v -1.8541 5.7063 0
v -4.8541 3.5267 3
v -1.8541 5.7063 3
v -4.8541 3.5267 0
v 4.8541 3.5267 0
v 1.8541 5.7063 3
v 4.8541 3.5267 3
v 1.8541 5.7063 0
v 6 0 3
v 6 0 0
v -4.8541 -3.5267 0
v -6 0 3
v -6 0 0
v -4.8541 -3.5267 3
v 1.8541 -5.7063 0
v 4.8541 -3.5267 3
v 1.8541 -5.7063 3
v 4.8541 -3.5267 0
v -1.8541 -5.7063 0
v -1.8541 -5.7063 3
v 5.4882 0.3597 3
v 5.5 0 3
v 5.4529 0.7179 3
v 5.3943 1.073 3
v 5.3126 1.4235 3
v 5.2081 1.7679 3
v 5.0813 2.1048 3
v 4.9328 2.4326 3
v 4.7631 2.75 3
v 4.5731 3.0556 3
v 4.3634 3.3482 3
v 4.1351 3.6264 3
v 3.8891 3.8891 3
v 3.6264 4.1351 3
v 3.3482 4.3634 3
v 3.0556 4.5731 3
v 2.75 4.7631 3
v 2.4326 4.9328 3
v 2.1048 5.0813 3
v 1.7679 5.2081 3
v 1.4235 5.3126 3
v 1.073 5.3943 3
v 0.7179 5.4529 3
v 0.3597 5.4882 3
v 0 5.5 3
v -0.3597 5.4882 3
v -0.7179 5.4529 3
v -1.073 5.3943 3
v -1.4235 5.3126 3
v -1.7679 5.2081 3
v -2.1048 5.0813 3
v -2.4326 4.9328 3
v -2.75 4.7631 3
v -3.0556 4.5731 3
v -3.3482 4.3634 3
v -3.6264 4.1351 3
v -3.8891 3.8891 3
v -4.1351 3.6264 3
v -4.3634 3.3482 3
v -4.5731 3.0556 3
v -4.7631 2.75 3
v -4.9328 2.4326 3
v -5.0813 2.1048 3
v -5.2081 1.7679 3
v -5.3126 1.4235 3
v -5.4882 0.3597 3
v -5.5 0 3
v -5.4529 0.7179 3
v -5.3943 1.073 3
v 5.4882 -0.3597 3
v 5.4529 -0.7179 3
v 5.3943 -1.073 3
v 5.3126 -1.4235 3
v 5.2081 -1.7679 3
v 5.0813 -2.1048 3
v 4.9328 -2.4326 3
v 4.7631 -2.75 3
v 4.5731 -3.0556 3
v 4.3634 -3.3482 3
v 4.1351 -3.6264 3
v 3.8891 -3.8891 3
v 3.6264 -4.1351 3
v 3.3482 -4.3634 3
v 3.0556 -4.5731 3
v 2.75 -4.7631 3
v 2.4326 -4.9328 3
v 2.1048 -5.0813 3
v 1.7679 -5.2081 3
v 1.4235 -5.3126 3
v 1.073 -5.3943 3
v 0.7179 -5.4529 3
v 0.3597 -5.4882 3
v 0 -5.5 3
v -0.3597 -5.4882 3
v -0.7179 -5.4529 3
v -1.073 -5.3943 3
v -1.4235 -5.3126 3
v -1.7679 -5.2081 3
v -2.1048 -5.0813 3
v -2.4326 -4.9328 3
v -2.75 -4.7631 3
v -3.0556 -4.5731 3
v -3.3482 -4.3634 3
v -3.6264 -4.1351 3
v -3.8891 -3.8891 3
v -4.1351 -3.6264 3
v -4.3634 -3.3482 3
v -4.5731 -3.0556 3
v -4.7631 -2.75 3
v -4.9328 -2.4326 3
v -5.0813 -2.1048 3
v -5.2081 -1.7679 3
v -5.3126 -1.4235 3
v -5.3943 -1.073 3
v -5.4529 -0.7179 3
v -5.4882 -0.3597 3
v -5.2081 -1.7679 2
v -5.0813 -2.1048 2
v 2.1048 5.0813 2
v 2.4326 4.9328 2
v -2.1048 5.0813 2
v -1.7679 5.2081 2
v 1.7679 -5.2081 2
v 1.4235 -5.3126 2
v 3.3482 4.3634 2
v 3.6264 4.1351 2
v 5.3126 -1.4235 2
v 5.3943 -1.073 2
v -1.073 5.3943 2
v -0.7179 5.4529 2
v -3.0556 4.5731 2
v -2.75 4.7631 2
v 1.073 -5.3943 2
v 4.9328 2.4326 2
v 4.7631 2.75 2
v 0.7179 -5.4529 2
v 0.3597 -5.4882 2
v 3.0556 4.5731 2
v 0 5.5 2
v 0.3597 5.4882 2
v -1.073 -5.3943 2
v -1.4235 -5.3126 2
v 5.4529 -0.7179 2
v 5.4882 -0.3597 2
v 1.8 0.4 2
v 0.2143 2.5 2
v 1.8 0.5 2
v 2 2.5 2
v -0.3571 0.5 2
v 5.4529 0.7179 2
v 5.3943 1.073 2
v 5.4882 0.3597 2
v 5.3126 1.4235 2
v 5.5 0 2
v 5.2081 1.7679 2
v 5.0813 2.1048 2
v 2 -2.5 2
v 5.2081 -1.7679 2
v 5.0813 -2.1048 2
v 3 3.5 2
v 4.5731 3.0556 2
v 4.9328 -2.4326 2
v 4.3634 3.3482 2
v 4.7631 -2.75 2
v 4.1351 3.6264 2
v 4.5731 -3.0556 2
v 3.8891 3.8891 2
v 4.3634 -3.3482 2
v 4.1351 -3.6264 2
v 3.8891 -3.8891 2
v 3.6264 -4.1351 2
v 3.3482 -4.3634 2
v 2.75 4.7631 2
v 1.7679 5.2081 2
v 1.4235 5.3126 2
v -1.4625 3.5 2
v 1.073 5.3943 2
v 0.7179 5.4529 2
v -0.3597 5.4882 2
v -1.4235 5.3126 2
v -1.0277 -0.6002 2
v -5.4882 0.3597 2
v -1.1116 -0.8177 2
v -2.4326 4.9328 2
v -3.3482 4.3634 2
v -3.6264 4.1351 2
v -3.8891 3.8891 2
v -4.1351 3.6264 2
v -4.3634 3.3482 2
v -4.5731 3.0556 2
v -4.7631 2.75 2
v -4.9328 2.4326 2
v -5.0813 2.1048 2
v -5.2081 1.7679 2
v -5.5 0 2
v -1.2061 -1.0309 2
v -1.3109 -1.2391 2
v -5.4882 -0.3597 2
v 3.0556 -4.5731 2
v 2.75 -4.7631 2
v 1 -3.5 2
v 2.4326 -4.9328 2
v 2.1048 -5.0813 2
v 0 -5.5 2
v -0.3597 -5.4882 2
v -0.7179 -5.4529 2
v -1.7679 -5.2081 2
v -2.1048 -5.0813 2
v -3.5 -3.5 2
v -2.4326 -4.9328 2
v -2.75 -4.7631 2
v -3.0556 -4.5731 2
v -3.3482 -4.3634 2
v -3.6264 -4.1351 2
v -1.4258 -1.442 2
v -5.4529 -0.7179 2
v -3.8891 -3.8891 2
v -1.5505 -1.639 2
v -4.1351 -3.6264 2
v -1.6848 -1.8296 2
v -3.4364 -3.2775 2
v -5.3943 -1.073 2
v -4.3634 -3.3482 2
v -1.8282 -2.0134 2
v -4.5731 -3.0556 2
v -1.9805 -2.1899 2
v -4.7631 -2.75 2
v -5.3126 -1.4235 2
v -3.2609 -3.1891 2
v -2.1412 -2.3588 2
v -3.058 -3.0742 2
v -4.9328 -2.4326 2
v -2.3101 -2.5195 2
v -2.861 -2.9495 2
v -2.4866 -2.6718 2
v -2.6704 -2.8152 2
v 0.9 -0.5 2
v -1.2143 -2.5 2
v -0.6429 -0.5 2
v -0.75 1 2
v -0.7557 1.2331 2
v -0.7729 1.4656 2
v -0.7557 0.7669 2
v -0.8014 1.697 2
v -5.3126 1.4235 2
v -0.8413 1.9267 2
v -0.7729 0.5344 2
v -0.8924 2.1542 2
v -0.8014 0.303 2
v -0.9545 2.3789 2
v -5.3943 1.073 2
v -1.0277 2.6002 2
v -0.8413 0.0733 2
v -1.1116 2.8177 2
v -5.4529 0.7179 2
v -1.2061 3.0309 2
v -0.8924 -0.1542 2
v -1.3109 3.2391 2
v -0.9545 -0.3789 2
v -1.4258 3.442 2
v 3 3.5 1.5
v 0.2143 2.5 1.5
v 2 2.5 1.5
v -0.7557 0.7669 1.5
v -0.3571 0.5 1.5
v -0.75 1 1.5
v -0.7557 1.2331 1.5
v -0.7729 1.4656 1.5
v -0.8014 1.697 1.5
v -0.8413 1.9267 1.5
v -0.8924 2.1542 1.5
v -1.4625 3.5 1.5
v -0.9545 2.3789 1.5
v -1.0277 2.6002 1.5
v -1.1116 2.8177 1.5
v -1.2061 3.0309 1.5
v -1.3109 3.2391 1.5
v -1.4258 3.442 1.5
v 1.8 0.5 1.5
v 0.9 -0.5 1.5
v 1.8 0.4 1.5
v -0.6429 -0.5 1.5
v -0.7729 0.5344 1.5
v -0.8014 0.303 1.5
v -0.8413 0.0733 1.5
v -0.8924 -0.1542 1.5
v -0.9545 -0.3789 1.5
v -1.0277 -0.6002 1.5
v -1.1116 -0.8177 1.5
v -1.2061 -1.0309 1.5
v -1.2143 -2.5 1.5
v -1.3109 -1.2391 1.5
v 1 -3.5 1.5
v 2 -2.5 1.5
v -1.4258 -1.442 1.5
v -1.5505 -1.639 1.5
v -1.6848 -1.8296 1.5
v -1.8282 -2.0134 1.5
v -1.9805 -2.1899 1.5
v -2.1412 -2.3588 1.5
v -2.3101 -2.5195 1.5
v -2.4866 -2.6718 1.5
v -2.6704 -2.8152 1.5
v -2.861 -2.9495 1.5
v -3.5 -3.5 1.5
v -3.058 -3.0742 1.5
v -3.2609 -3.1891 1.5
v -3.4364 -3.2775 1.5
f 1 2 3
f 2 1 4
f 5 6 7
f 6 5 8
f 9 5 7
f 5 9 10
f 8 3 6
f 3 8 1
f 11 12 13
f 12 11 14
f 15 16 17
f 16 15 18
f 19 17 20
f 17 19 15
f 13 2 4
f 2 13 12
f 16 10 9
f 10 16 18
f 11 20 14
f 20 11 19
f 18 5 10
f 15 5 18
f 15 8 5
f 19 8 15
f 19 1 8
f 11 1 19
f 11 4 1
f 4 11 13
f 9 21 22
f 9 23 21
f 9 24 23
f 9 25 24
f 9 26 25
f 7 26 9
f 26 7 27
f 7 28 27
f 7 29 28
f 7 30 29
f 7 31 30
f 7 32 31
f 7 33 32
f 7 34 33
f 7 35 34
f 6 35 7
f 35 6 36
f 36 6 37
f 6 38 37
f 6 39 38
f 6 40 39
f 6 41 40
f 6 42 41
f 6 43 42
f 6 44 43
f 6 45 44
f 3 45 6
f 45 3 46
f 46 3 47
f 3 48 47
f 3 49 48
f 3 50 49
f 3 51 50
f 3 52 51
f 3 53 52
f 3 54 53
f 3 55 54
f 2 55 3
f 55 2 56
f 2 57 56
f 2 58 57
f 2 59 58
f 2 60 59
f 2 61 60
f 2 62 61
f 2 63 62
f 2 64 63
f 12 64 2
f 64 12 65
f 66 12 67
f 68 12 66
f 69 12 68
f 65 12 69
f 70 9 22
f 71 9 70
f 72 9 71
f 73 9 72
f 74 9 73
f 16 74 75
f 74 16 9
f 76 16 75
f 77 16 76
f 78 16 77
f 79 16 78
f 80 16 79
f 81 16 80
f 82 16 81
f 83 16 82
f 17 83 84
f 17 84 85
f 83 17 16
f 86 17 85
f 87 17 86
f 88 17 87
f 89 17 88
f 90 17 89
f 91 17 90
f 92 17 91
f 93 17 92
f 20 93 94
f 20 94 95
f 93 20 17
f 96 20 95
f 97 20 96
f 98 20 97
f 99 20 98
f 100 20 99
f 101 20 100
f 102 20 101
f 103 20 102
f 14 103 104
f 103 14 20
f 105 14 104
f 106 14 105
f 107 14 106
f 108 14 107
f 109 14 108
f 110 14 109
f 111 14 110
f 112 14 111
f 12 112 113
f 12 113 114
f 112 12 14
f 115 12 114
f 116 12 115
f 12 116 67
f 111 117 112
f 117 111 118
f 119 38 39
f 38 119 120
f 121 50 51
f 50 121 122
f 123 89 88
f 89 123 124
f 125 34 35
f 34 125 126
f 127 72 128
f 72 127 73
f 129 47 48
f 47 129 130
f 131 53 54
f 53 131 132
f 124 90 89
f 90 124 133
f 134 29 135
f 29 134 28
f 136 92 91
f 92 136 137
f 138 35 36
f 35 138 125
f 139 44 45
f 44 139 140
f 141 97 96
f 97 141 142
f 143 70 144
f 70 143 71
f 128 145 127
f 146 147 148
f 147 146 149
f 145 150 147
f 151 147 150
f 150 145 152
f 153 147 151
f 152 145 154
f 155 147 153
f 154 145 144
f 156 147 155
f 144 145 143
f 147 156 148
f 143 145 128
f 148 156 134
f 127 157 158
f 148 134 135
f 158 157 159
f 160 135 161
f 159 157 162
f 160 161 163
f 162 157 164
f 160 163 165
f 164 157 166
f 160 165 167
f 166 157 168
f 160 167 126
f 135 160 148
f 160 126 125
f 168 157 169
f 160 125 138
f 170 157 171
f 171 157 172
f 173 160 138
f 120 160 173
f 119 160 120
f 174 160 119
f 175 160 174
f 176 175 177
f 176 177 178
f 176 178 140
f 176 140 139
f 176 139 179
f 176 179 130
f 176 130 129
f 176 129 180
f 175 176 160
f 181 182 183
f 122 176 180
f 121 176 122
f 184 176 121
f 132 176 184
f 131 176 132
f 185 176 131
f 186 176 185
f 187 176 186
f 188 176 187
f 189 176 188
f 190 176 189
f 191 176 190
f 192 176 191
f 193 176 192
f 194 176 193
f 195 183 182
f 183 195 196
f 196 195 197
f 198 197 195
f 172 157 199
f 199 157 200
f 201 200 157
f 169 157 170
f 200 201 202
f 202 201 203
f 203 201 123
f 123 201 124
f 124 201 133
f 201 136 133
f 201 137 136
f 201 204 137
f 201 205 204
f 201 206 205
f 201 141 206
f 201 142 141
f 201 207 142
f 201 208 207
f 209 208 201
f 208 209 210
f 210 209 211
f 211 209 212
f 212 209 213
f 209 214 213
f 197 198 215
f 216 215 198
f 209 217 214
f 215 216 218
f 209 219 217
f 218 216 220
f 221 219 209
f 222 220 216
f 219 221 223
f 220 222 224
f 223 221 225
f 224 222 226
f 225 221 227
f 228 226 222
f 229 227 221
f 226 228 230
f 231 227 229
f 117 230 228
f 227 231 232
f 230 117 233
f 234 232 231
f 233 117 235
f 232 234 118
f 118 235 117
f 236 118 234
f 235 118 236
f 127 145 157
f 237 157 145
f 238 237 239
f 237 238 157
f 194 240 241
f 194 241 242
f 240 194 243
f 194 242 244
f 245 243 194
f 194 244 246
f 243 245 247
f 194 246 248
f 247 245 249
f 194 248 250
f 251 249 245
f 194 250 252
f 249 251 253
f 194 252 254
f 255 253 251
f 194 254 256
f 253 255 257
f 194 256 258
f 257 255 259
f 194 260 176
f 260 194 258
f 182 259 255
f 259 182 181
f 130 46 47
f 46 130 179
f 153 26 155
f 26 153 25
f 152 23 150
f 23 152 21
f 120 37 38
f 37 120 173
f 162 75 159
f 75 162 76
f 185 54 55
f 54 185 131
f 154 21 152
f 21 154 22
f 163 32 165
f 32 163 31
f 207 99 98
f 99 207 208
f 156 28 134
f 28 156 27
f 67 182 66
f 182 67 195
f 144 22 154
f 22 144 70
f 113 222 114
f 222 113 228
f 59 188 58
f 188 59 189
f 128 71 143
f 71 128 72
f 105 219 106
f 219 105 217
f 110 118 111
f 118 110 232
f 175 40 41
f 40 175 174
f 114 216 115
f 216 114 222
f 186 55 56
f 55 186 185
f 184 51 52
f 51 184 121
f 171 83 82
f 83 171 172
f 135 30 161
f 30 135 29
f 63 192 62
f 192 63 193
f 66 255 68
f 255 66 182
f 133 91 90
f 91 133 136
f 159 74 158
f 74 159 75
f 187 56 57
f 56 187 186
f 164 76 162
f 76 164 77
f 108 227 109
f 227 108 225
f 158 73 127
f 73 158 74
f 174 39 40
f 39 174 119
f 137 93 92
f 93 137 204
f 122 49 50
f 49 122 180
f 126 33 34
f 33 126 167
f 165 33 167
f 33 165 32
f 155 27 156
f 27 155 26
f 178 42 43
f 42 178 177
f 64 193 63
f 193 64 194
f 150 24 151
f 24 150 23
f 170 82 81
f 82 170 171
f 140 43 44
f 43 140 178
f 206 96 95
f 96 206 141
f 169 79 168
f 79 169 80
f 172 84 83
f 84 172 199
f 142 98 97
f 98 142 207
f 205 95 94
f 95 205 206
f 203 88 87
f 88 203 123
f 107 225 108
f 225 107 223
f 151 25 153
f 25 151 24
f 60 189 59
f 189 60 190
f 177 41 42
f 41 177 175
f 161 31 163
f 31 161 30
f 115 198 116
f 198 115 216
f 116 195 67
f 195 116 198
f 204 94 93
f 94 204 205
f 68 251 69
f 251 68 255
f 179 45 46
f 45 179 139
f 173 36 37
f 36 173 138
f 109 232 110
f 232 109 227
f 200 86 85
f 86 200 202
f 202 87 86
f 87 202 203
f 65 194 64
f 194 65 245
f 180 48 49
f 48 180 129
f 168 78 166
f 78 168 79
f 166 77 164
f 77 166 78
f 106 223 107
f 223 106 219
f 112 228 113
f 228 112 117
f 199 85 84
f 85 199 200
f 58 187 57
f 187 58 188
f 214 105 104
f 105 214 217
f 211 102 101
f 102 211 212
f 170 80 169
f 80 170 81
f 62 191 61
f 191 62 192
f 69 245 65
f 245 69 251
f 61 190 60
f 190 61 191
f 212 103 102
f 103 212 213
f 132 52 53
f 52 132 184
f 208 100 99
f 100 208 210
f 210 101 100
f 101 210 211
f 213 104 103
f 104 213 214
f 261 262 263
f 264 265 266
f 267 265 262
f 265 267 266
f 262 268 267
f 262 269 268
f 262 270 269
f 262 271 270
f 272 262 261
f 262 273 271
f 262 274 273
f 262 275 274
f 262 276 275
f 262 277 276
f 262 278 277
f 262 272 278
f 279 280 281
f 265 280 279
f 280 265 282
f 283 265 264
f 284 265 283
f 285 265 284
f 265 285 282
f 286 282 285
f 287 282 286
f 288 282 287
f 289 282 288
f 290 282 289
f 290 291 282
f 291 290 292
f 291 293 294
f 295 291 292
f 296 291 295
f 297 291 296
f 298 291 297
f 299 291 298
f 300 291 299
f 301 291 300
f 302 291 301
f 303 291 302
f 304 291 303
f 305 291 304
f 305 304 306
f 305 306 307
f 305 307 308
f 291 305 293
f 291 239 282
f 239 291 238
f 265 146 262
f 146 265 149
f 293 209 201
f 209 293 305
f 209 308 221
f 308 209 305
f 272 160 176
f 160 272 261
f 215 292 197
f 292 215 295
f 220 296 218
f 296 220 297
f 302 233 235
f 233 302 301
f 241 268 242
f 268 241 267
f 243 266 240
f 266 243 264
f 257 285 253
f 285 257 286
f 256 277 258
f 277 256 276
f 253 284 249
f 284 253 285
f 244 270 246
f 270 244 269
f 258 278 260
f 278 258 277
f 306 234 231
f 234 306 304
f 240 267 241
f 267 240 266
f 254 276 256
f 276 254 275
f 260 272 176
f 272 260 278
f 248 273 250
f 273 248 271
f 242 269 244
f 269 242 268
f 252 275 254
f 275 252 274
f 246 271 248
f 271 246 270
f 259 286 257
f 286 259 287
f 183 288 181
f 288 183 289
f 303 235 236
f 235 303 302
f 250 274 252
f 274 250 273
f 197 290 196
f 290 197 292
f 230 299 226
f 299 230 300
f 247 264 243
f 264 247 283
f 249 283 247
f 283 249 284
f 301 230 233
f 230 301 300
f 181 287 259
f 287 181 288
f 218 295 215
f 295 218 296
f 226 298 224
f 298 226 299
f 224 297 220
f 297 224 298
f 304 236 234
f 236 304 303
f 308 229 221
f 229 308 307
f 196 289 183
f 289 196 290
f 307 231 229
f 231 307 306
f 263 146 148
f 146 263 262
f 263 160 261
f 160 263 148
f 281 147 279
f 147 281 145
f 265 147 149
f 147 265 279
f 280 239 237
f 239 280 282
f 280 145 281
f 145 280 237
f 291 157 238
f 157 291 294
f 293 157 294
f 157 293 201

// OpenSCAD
  
difference() {

    color("blue")
    difference() {
        cylinder(d=12,h=3,$fn=10);
        translate([0,0,2])
        cylinder(d=11,h=1.5,$fn=96);
    }
    
    translate([-3.5,-3.5,1.5])
    color("gold")
    union() {
        difference() {
            linear_extrude(2)
            polygon([[0,0],[2,7],[4,7],[2,0]]);
            translate([-2,4.5,-0.1])
            cylinder(d=9.5,h=3,$fn=128);
        }

        difference() {
         translate([3.5,6,0])
         cube([3,1,2]);


        translate([5.5,6,-0.1])
        rotate([0,0,-45])
        cube([1,2,3]);
       }

        difference() {
            translate([2.8,3,0])
            cube([2.5,1,2]);

            translate([4.4,3,-0.1])
            rotate([0,0,-45])
            cube([1,2,3]);
        }

        difference() {
            translate([2,0,0])
            cube([3.5,1,2]);

            translate([4.5,0,-0.1])
            rotate([0,0,-45])
            cube([1,2,3]);
        }
    }
}
